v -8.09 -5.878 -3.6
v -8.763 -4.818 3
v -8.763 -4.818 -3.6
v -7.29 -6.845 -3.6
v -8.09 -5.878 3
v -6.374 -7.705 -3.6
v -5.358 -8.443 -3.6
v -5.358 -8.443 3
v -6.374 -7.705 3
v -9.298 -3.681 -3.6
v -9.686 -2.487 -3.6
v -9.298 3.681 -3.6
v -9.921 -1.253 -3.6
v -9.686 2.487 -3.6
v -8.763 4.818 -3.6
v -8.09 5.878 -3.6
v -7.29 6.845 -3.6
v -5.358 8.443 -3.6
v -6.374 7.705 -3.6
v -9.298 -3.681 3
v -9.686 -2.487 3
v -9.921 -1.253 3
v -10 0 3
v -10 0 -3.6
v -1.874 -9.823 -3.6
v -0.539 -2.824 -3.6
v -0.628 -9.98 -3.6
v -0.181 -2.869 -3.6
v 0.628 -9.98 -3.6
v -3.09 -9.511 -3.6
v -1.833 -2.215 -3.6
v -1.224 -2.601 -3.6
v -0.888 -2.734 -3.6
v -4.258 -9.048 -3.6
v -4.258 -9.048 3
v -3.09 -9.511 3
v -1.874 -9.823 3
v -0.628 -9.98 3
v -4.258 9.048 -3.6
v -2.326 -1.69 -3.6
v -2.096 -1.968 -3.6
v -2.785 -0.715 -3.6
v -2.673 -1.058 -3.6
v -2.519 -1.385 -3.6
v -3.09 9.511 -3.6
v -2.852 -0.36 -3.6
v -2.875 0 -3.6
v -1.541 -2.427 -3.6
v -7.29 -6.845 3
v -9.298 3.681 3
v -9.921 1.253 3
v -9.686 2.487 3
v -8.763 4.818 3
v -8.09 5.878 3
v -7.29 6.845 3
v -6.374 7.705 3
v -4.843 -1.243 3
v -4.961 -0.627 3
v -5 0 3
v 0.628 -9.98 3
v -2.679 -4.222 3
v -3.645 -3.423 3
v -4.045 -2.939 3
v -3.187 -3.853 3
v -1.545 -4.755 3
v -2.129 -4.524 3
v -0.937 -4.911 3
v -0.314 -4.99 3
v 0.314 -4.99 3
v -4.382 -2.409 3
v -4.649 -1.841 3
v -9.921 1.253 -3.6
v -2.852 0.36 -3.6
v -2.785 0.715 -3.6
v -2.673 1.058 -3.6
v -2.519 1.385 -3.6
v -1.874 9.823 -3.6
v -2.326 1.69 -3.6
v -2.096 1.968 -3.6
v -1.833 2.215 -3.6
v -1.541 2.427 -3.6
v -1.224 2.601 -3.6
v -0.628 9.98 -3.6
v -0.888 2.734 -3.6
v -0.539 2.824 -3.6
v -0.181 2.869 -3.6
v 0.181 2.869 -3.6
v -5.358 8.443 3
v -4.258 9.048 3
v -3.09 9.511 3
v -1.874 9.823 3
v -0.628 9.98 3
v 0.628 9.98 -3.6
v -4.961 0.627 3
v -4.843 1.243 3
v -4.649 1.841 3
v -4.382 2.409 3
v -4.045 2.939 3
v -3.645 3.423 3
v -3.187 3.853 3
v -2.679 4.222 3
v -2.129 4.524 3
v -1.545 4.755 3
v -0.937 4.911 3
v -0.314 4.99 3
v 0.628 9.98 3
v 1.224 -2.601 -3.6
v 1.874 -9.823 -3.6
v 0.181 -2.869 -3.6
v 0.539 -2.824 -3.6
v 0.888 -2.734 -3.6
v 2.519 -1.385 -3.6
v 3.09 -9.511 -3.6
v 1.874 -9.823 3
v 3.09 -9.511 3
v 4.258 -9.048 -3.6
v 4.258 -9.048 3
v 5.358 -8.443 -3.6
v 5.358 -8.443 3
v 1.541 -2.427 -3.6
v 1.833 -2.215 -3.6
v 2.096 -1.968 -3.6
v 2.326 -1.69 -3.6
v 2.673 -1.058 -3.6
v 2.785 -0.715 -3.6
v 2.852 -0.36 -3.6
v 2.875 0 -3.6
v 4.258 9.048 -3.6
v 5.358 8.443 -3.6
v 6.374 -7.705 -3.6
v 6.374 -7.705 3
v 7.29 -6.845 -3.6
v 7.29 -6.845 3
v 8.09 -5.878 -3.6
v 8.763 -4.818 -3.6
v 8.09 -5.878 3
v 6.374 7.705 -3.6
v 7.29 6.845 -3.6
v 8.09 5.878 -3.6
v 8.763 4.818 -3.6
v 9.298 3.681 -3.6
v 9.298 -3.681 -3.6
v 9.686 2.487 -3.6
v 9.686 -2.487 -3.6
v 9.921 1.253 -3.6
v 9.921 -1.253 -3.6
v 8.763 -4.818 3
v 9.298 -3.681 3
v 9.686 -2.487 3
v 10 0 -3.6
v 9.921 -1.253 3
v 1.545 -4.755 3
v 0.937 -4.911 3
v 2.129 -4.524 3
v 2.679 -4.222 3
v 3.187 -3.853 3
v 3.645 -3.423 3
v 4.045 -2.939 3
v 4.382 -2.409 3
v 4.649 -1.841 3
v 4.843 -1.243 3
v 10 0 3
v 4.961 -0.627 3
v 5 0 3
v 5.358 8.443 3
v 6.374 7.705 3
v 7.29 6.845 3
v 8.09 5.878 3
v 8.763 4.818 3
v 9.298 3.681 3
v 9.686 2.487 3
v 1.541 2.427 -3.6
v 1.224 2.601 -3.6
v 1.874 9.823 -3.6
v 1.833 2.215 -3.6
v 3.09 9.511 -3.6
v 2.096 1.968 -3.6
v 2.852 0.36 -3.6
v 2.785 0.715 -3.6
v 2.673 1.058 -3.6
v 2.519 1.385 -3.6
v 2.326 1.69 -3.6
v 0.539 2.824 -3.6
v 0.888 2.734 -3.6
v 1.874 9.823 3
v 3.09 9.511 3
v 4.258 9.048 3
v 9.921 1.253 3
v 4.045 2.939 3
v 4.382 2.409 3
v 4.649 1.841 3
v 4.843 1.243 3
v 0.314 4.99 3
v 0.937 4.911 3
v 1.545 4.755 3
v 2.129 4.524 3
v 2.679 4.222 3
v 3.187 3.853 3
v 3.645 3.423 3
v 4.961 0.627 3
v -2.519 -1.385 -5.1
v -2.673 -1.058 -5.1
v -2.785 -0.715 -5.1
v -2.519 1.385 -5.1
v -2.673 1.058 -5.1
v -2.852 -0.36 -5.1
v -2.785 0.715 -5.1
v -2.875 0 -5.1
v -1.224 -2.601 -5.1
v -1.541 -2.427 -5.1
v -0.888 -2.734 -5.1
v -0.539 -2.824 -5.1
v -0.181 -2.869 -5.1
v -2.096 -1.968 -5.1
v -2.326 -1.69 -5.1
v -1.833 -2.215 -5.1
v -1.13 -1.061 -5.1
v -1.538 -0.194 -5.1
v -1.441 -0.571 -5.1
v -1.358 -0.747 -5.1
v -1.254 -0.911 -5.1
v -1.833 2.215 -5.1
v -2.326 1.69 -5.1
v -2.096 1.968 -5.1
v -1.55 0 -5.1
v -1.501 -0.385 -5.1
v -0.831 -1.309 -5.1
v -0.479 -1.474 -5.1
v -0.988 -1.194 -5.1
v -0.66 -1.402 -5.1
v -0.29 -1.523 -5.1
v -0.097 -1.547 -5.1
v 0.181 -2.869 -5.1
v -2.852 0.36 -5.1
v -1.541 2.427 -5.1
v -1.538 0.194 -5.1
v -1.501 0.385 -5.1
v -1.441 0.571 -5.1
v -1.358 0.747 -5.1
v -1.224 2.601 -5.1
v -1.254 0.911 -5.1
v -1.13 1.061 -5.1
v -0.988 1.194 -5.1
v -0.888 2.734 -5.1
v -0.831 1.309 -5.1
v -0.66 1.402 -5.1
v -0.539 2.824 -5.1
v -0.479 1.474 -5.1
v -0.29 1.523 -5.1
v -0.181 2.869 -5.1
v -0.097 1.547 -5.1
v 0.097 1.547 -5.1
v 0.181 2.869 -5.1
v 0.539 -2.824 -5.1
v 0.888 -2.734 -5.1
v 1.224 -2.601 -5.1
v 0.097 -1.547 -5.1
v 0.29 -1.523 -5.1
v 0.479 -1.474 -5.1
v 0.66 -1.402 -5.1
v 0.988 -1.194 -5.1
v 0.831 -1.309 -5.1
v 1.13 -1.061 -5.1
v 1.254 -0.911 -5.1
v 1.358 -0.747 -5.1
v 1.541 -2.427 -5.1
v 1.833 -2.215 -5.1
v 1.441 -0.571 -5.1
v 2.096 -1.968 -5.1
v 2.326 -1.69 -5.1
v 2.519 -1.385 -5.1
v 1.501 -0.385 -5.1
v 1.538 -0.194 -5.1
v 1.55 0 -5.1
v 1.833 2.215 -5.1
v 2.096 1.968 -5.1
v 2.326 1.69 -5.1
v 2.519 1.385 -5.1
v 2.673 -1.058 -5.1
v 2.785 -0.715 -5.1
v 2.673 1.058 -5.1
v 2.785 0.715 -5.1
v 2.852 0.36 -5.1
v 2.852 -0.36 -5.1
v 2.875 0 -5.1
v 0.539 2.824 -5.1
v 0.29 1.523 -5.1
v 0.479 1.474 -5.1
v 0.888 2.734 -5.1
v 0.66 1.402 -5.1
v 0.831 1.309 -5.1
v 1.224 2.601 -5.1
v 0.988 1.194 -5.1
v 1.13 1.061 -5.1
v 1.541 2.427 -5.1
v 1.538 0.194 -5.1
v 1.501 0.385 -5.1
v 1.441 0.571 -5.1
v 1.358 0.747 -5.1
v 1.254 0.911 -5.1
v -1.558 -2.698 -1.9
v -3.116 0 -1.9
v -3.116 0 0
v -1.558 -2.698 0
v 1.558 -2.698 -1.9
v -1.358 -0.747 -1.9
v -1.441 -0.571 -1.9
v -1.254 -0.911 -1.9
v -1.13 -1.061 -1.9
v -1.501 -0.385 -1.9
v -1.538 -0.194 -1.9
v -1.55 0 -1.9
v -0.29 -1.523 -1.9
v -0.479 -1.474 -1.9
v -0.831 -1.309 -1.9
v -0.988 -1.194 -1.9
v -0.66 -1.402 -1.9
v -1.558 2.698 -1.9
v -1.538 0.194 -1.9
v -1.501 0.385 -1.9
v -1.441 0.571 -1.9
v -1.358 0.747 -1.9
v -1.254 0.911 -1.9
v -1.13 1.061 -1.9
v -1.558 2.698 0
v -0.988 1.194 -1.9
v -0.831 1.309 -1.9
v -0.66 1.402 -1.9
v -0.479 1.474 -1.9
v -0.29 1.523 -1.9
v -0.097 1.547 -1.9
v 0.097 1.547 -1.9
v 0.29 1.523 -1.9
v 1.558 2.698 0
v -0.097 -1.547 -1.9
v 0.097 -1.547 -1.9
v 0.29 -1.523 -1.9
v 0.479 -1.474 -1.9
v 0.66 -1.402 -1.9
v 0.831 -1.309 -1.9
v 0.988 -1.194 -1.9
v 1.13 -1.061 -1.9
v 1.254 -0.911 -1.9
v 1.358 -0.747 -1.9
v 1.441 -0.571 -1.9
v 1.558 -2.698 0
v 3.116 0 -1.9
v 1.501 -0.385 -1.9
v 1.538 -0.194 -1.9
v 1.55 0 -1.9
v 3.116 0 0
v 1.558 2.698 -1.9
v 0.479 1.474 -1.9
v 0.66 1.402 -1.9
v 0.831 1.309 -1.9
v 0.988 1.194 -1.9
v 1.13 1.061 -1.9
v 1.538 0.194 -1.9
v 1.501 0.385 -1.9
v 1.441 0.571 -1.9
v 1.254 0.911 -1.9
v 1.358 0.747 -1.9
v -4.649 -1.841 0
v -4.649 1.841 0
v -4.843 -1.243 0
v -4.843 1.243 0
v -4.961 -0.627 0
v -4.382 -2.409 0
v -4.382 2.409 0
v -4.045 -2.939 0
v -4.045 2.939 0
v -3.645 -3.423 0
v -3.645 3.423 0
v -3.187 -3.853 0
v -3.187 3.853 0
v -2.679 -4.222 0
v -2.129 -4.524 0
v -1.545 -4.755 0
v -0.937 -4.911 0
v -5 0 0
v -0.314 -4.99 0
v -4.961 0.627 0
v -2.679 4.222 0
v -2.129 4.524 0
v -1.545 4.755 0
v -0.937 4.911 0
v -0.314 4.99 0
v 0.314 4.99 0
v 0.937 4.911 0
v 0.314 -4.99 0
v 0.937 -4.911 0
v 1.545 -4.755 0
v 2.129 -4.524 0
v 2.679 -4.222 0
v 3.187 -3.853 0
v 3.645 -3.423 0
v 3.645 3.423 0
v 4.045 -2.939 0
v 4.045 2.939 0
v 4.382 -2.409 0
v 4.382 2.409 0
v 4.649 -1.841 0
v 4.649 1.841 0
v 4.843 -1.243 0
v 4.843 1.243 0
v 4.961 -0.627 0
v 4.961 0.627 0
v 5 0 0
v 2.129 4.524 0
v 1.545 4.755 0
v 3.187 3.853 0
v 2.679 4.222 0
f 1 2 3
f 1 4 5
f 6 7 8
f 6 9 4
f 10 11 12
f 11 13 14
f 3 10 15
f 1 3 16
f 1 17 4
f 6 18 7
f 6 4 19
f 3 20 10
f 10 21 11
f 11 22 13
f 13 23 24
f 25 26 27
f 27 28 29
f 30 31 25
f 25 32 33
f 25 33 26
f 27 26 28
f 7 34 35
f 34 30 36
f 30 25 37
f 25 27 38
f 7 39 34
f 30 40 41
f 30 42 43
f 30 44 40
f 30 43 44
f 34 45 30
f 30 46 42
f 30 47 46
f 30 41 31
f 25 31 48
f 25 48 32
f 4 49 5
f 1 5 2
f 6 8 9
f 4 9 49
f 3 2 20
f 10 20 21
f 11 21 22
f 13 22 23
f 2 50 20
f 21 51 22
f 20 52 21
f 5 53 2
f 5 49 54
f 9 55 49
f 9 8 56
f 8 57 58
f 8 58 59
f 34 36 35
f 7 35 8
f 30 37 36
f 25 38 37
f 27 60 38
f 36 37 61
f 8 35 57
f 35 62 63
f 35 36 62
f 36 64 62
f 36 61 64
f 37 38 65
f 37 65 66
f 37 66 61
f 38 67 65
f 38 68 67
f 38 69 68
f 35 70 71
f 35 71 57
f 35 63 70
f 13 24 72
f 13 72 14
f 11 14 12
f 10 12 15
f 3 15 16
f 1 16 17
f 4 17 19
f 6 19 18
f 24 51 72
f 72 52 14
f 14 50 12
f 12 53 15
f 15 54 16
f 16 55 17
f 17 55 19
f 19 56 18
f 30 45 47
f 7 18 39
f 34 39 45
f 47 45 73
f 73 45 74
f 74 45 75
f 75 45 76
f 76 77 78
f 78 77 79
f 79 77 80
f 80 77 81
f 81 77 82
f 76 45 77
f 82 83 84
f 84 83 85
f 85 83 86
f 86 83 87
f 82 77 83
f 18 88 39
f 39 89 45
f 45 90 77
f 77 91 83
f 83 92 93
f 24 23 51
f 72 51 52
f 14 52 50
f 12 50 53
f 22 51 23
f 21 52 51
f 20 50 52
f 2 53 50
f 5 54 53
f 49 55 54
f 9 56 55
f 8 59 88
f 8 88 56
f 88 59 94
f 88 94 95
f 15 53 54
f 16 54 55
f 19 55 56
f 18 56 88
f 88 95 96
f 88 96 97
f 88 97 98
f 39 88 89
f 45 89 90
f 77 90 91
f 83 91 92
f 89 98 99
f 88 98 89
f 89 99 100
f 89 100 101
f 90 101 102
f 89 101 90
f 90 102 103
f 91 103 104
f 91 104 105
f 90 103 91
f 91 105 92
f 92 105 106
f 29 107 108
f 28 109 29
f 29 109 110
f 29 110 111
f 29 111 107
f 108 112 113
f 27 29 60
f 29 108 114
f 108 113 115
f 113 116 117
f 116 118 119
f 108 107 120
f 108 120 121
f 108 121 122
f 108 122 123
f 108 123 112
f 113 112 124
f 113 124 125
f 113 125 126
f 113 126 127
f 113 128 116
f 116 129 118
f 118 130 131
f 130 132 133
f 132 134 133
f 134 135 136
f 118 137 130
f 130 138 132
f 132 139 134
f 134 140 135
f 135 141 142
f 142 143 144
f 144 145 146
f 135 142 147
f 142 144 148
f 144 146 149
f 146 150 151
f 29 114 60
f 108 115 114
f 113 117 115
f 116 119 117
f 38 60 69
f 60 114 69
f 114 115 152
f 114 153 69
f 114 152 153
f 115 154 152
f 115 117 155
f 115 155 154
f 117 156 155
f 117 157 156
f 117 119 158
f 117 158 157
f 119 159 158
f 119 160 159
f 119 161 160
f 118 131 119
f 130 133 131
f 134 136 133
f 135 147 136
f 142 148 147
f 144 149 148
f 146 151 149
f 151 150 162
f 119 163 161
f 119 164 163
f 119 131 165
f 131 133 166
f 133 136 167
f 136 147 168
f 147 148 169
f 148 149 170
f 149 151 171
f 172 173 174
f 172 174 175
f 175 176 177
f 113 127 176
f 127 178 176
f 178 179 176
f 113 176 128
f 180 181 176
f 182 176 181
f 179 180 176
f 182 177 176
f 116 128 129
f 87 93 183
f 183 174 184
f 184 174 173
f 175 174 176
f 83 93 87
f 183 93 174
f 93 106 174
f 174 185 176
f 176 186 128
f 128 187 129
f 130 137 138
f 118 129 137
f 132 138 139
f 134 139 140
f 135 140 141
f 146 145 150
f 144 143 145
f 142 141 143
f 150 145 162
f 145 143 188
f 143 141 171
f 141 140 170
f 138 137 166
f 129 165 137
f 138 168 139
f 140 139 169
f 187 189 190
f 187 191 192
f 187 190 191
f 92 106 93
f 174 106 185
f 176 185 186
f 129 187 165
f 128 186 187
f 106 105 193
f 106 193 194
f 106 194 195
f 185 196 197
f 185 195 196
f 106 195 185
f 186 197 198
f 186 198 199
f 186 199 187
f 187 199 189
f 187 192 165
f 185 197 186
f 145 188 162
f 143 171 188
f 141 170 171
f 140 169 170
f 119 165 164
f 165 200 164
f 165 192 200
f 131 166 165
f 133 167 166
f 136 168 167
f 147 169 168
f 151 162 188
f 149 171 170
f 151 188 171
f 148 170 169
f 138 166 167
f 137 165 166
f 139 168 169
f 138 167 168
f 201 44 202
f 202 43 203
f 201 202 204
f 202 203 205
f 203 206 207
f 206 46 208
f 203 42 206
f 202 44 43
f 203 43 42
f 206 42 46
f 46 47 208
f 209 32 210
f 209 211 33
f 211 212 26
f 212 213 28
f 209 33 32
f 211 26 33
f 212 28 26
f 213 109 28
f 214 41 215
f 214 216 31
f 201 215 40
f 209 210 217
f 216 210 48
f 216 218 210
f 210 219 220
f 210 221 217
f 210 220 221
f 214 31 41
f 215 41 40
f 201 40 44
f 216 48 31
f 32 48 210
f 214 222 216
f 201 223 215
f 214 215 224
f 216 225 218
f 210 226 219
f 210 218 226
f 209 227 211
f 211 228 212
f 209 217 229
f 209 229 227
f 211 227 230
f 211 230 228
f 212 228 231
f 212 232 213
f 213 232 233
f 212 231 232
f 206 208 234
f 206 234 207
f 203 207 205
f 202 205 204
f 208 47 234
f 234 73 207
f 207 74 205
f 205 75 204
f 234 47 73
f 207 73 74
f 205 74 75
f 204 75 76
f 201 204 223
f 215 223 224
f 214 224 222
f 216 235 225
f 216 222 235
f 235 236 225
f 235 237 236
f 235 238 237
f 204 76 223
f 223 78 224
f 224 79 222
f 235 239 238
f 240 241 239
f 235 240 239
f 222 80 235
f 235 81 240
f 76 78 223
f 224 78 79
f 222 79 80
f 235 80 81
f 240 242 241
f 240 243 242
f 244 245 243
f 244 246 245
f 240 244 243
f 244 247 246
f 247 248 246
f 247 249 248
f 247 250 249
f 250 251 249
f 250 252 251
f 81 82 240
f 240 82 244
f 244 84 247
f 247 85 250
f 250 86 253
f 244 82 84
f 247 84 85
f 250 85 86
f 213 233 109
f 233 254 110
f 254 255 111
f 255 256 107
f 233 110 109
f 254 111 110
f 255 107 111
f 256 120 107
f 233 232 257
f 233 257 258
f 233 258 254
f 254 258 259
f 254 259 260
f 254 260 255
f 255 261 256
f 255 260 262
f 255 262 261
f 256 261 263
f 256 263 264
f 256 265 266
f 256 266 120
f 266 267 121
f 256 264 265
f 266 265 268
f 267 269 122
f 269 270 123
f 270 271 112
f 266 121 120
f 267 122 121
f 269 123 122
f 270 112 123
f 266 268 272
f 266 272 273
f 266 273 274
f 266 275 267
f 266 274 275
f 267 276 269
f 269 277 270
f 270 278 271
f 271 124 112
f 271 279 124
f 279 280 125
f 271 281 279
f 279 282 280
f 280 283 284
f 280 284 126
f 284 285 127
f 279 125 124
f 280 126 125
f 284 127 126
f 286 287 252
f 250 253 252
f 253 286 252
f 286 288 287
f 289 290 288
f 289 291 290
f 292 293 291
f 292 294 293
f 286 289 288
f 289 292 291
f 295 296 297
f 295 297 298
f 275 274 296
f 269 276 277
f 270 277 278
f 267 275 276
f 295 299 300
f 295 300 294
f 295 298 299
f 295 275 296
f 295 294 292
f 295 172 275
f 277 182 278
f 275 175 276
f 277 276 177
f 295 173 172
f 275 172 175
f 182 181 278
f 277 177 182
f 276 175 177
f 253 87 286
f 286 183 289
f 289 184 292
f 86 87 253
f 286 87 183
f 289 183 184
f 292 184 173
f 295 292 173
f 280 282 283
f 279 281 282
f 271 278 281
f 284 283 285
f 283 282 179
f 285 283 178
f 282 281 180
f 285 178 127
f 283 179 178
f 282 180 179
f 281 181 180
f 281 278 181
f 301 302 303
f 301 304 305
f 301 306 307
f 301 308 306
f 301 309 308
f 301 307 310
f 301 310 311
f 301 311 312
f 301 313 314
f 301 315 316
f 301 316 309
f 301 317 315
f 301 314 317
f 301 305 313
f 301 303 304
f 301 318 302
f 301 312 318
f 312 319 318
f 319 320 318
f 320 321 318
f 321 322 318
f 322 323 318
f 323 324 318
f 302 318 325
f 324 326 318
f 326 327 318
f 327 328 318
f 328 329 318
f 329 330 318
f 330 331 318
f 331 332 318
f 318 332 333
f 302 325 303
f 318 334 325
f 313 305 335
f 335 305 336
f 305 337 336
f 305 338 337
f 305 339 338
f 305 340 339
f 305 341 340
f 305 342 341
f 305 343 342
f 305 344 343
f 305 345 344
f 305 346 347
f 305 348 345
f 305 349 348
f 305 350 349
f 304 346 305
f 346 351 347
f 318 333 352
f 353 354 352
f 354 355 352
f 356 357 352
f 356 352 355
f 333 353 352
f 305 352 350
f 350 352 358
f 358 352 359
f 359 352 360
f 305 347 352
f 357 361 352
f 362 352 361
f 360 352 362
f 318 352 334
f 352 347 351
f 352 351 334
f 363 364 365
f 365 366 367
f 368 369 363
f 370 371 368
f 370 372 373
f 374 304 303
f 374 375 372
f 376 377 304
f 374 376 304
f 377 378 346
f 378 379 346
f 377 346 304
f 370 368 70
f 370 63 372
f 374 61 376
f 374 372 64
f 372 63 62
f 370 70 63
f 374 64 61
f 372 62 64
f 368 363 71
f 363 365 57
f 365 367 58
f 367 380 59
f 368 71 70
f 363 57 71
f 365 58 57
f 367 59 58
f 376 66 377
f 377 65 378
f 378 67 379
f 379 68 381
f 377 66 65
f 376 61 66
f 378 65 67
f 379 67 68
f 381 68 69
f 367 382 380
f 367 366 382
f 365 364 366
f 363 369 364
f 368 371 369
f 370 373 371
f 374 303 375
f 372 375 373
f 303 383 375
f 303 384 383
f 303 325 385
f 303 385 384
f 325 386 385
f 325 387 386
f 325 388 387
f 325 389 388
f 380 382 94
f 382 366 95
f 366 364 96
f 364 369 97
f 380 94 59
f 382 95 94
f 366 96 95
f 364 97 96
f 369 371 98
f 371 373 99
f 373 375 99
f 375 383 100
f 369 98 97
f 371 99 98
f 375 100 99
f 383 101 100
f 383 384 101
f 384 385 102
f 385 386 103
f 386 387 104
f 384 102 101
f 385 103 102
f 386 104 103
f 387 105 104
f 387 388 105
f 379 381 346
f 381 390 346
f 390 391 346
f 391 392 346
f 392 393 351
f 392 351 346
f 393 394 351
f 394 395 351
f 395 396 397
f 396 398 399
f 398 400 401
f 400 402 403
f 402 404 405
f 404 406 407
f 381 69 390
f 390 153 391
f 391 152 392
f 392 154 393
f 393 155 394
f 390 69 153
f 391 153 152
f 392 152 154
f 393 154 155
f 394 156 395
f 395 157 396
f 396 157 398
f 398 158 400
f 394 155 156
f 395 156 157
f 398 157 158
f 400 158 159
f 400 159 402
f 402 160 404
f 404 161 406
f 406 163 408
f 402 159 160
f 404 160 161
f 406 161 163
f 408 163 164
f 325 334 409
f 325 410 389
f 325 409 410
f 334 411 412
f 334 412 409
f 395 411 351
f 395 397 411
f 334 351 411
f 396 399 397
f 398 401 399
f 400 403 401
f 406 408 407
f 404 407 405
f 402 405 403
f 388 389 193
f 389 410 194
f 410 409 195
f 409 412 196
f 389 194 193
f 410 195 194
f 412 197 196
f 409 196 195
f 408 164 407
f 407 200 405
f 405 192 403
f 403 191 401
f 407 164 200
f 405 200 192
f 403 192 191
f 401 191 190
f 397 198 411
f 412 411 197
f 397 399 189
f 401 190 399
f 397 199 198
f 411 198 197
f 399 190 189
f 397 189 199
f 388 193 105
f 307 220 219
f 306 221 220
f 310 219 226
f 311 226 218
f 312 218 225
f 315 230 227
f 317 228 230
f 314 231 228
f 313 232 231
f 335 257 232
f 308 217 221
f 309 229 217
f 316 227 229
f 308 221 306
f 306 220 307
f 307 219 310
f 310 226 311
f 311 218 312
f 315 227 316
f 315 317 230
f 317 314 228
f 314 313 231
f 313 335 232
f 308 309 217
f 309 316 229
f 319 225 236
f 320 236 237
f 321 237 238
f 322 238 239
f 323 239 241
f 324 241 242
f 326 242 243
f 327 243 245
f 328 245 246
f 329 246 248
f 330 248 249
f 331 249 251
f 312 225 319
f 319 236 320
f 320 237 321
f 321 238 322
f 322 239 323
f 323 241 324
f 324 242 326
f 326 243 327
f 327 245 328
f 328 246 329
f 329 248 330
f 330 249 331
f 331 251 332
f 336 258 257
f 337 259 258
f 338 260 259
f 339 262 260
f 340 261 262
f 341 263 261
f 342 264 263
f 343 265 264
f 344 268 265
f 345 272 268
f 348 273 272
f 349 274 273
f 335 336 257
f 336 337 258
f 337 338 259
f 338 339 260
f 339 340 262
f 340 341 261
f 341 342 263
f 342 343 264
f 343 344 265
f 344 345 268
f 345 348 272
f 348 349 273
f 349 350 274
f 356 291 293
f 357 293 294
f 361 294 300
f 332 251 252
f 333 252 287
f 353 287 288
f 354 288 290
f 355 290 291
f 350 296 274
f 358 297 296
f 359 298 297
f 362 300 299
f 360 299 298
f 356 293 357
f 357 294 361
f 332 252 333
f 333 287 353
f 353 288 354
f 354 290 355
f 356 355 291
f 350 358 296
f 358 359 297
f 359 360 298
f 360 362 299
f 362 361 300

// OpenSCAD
$fn = 50;

difference() {
	union() {
		translate(v = [0, 0, -3.5999999999999996]) {
			cylinder(h = 6.6, r = 10.0);
		}
		#translate(v = [0, 0, -5.1]) {
			cylinder(h = 5.1, r = 2.875);
		}
	}
	union() {
		translate(v = [0, 0, 0]) {
			rotate(a = [0, 0, 0]) {
				difference() {
					union() {
						translate(v = [0, 0, -1.9]) {
							linear_extrude(height = 1.9) {
								polygon(points = [[3.1158, 0.0], [1.5579000000000005, 2.698361953111554], [-1.5578999999999994, 2.6983619531115544], [-3.1158, 3.815754496783323e-16], [-1.5579000000000014, -2.6983619531115535], [1.557899999999998, -2.6983619531115552]]);
							}
						}
					}
					union();
				}
			}
		}
		#cylinder(h = 3, r = 5.0);
		#translate(v = [0, 0, -100.0]) {
			cylinder(h = 200, r = 1.55);
		}
	}
}
